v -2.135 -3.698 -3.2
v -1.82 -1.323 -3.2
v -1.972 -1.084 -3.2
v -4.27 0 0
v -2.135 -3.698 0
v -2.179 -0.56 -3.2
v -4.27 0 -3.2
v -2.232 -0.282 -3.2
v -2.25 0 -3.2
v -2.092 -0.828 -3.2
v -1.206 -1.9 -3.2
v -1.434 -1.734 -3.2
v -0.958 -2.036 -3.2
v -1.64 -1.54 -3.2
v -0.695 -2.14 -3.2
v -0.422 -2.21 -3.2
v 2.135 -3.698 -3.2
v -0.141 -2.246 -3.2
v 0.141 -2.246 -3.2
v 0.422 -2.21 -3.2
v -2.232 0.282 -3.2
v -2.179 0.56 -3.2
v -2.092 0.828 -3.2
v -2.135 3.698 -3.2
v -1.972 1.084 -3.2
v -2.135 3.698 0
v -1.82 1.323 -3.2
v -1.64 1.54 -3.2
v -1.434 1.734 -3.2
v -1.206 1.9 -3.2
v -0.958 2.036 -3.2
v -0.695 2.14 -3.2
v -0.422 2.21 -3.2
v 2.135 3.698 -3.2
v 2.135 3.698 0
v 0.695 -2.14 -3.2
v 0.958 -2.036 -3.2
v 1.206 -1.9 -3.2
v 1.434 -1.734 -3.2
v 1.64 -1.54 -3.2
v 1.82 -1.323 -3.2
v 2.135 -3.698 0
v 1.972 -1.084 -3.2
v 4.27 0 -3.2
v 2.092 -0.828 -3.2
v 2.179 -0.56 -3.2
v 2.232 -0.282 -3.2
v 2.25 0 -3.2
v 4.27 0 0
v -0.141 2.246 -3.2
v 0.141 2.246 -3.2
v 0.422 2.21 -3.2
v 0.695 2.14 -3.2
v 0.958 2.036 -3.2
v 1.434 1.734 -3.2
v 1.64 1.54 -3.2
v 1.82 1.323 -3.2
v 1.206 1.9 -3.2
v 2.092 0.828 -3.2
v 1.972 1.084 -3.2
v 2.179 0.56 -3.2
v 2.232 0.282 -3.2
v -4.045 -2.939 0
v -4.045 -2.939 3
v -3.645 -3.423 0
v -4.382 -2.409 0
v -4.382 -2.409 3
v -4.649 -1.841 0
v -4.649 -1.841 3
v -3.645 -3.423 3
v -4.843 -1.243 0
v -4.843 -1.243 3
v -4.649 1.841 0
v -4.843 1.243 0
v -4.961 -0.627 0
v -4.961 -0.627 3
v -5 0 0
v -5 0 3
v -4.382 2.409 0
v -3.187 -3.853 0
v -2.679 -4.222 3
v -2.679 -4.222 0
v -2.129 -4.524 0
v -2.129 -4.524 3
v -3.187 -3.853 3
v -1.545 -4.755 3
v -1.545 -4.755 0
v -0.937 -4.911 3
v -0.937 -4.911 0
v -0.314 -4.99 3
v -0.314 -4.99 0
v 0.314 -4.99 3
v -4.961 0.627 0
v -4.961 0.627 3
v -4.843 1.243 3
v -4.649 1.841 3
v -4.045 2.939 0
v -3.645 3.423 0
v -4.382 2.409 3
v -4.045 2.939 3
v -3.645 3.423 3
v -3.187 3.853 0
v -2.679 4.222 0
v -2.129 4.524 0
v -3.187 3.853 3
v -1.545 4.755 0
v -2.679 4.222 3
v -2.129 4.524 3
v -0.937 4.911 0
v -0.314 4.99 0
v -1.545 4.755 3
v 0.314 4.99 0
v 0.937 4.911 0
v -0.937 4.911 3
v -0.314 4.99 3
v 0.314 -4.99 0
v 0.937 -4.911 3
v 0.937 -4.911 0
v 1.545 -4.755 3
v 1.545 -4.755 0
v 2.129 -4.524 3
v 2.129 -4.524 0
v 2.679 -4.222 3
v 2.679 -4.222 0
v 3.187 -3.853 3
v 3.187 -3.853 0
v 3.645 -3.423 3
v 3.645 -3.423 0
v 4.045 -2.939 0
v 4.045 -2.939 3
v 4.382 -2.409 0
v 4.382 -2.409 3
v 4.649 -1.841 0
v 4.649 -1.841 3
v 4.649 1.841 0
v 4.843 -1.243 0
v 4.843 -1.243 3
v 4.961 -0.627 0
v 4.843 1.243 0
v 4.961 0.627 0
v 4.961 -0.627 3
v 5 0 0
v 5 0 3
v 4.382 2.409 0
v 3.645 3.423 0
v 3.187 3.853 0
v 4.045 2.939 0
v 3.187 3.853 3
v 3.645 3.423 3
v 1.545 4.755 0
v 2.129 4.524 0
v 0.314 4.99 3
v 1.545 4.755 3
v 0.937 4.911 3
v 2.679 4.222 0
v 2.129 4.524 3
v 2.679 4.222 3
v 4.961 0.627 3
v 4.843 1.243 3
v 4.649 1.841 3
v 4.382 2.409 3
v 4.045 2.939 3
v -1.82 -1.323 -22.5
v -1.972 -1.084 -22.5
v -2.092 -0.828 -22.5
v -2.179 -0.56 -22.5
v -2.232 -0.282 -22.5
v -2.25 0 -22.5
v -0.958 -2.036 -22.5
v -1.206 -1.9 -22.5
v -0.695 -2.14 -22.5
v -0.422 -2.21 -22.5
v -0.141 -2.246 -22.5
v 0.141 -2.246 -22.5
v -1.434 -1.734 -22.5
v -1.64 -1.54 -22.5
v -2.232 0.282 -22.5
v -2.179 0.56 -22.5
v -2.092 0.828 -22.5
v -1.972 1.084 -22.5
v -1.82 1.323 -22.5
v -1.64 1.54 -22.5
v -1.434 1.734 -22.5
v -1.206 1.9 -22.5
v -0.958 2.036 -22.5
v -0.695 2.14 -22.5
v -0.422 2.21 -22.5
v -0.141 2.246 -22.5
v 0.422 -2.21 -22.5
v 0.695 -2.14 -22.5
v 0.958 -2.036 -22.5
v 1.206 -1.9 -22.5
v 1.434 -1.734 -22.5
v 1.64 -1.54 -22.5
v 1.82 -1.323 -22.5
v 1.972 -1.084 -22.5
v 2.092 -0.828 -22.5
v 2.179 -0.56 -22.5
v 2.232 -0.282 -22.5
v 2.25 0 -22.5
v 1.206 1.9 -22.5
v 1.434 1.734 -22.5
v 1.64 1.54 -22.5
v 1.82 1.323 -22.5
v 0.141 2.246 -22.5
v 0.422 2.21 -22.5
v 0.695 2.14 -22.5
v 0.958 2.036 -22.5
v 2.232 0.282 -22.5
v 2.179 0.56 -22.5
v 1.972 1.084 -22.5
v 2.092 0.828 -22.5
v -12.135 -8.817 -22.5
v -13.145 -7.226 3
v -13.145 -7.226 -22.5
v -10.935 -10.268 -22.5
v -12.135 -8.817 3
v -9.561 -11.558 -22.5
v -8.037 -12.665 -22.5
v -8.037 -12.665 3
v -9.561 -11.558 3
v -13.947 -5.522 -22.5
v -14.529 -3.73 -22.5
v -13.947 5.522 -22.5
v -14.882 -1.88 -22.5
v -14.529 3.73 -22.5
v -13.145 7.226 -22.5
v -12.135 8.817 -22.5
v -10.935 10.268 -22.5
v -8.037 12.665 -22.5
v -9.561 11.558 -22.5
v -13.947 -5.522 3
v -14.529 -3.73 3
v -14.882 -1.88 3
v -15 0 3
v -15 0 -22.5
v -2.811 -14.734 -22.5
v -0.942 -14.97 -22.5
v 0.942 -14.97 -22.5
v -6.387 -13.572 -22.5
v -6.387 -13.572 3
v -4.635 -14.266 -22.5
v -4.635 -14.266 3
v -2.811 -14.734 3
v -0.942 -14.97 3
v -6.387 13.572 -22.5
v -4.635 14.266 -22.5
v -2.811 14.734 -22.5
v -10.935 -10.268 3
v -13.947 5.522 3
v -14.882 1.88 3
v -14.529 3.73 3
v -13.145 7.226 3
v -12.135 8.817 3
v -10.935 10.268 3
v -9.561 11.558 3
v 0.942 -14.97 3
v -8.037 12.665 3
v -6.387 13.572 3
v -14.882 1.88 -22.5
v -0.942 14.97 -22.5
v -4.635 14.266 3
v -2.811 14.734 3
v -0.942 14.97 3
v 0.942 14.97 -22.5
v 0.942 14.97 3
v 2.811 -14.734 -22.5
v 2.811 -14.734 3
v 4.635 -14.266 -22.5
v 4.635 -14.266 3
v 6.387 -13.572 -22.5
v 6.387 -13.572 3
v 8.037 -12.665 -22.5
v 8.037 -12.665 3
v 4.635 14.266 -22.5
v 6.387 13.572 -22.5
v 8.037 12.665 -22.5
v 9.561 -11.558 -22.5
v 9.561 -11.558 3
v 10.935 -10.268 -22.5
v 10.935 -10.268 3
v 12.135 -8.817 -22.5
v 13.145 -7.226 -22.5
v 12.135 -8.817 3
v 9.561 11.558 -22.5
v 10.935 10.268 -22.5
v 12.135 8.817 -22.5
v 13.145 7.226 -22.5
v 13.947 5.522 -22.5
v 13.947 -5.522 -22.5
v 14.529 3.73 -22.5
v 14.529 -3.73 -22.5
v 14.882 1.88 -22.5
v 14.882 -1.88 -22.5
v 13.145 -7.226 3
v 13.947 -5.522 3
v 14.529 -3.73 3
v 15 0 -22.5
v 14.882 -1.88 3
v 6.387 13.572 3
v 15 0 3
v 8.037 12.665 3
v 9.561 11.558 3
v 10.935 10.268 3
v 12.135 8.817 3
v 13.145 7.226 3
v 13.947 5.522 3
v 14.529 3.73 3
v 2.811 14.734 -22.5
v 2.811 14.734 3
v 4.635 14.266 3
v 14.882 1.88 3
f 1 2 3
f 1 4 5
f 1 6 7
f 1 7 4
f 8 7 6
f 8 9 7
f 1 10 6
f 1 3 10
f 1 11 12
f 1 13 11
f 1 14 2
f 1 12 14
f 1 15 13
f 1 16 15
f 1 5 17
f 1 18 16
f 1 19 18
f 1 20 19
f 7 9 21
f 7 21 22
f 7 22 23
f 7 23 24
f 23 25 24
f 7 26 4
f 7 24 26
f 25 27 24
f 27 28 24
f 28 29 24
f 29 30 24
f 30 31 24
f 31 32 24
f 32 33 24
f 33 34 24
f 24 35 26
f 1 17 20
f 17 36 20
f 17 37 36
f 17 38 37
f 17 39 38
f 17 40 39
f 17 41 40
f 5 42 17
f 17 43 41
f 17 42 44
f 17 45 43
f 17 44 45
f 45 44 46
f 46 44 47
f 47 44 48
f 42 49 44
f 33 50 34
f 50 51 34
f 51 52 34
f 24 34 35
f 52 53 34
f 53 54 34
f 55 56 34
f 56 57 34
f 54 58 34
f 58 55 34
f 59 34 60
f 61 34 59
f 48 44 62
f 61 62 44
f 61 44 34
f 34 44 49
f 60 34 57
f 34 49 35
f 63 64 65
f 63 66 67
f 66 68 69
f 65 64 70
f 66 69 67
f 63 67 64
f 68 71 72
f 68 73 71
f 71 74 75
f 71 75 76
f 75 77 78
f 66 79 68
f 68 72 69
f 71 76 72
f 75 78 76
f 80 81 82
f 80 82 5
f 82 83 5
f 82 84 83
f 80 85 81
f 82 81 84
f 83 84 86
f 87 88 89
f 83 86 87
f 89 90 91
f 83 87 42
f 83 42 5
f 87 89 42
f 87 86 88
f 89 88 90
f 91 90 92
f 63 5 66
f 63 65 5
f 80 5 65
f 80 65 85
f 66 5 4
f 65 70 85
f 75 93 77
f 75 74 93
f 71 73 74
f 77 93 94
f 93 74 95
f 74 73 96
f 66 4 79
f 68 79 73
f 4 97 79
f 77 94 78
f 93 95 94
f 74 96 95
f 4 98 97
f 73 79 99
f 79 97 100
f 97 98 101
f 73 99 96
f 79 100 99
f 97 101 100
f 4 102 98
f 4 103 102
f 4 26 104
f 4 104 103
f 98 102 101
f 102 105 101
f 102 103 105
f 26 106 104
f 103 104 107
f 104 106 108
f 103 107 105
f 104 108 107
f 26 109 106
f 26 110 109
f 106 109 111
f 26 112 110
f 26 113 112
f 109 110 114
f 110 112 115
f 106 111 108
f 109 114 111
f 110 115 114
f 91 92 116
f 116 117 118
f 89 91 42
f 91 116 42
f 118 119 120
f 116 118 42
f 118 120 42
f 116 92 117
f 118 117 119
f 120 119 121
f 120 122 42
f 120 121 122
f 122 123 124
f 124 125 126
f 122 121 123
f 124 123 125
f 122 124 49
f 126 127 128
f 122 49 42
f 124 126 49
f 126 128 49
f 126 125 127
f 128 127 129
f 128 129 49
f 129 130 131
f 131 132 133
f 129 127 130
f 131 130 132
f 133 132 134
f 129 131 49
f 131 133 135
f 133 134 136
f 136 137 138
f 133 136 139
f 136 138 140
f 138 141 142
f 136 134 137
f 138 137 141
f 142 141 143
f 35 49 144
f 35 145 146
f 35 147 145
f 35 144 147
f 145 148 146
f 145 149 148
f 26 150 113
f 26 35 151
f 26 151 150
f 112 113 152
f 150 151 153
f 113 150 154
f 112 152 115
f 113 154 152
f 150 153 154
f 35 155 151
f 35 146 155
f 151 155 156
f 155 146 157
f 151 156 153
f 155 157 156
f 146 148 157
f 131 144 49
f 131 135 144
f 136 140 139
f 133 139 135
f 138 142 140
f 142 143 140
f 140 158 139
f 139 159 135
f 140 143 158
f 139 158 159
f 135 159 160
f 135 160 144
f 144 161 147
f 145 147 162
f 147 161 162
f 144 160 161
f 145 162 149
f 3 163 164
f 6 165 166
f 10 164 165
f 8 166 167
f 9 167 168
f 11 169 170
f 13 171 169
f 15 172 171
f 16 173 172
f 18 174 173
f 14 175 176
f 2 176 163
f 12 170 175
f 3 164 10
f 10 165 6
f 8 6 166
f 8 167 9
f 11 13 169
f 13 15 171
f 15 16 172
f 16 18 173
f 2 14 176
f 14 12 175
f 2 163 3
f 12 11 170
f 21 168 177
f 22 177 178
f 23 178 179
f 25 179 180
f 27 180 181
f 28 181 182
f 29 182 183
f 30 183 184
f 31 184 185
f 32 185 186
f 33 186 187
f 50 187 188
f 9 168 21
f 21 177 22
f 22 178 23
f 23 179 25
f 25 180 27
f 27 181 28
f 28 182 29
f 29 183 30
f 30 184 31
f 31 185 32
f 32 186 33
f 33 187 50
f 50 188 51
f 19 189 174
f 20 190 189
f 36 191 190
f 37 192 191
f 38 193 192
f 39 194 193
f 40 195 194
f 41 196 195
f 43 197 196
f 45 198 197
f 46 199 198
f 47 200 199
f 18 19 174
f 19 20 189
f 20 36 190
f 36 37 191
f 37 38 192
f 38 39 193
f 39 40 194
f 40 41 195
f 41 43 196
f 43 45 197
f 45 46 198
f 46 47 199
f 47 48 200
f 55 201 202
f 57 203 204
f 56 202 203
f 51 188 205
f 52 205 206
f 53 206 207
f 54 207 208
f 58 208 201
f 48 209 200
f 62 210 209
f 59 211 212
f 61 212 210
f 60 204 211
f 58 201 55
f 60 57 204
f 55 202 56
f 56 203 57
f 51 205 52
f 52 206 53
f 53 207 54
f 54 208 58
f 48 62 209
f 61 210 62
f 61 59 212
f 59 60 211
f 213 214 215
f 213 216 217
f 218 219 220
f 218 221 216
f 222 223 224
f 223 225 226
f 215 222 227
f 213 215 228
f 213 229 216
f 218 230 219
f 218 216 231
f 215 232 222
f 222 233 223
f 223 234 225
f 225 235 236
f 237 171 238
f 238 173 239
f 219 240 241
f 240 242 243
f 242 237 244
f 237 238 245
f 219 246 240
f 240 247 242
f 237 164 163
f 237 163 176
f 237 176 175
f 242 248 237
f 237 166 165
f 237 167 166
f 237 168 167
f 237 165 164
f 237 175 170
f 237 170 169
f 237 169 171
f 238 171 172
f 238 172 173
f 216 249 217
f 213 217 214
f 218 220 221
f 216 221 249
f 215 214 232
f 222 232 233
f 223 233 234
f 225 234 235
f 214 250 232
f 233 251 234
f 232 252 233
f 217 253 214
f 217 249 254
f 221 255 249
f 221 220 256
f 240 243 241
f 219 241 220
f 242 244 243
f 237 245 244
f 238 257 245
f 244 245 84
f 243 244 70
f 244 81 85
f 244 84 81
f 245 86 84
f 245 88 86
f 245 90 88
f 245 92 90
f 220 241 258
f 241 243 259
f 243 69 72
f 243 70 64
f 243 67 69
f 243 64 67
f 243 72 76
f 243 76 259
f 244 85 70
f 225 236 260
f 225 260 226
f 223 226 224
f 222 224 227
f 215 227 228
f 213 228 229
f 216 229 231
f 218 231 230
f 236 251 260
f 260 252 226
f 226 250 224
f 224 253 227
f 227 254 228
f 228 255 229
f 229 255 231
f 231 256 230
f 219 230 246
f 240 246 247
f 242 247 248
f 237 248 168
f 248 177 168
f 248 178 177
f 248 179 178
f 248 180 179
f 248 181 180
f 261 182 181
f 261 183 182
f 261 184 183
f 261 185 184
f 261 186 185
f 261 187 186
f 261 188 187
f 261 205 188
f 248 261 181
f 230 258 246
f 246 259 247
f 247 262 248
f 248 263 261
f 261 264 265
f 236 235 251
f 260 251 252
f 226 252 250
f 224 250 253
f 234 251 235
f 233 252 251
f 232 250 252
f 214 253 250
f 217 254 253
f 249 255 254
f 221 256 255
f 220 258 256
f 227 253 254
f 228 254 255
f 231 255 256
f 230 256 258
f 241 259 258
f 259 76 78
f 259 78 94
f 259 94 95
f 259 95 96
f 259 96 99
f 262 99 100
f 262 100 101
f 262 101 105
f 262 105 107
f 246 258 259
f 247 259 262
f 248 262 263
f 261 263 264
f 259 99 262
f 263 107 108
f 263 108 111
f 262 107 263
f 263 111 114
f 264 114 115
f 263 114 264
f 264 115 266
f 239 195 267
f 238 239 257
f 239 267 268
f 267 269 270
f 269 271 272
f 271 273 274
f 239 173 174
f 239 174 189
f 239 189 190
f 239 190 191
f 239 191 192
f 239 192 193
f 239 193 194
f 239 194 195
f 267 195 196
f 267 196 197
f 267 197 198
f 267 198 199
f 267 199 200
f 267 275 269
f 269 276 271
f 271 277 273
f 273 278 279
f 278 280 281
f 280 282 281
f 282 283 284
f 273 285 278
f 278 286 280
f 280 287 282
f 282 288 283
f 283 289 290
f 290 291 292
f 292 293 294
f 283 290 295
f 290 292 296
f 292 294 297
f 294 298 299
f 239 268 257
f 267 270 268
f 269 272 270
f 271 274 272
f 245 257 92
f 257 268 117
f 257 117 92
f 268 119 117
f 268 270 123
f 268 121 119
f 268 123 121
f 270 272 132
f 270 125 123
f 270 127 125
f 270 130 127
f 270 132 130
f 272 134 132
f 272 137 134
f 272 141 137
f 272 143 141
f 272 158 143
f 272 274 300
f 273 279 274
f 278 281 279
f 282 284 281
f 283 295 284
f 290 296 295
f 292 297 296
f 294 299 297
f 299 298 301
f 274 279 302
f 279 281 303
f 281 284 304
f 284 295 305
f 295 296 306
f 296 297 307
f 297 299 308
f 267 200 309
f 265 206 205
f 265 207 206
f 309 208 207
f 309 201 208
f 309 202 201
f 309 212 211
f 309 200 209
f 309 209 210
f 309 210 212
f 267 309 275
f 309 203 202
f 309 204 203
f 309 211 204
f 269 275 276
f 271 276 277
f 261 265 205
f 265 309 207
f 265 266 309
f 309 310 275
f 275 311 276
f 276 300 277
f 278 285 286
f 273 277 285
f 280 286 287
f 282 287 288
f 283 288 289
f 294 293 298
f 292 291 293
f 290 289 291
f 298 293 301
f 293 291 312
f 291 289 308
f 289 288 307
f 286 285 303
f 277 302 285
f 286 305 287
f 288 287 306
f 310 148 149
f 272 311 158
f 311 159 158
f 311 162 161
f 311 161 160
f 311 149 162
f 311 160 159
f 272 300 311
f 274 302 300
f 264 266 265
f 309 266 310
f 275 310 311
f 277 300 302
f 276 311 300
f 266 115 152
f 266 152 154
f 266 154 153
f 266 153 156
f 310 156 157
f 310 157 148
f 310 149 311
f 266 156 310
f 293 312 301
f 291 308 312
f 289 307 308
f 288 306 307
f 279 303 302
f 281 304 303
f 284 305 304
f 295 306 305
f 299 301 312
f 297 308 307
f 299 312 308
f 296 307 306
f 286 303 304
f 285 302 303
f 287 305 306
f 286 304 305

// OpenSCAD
$fn = 50;


difference() {
	union() {
		translate(v = [0, 0, -22.5000000000]) {
			cylinder(h = 25.5000000000, r = 15.0000000000);
		}
	}
	union() {
		translate(v = [0, 0, 0]) {
			rotate(a = [0, 0, 0]) {
				difference() {
					union() {
						translate(v = [0, 0, -3.2000000000]) {
							linear_extrude(height = 3.2000000000) {
								polygon(points = [[4.2698000000, 0.0000000000], [2.1349000000, 3.6977552691], [-2.1349000000, 3.6977552691], [-4.2698000000, 0.0000000000], [-2.1349000000, -3.6977552691], [2.1349000000, -3.6977552691]]);
							}
						}
					}
					union();
				}
			}
		}
		#cylinder(h = 3, r = 5.0000000000);
		#translate(v = [0, 0, -100.0000000000]) {
			cylinder(h = 200, r = 2.2500000000);
		}
	}
}
